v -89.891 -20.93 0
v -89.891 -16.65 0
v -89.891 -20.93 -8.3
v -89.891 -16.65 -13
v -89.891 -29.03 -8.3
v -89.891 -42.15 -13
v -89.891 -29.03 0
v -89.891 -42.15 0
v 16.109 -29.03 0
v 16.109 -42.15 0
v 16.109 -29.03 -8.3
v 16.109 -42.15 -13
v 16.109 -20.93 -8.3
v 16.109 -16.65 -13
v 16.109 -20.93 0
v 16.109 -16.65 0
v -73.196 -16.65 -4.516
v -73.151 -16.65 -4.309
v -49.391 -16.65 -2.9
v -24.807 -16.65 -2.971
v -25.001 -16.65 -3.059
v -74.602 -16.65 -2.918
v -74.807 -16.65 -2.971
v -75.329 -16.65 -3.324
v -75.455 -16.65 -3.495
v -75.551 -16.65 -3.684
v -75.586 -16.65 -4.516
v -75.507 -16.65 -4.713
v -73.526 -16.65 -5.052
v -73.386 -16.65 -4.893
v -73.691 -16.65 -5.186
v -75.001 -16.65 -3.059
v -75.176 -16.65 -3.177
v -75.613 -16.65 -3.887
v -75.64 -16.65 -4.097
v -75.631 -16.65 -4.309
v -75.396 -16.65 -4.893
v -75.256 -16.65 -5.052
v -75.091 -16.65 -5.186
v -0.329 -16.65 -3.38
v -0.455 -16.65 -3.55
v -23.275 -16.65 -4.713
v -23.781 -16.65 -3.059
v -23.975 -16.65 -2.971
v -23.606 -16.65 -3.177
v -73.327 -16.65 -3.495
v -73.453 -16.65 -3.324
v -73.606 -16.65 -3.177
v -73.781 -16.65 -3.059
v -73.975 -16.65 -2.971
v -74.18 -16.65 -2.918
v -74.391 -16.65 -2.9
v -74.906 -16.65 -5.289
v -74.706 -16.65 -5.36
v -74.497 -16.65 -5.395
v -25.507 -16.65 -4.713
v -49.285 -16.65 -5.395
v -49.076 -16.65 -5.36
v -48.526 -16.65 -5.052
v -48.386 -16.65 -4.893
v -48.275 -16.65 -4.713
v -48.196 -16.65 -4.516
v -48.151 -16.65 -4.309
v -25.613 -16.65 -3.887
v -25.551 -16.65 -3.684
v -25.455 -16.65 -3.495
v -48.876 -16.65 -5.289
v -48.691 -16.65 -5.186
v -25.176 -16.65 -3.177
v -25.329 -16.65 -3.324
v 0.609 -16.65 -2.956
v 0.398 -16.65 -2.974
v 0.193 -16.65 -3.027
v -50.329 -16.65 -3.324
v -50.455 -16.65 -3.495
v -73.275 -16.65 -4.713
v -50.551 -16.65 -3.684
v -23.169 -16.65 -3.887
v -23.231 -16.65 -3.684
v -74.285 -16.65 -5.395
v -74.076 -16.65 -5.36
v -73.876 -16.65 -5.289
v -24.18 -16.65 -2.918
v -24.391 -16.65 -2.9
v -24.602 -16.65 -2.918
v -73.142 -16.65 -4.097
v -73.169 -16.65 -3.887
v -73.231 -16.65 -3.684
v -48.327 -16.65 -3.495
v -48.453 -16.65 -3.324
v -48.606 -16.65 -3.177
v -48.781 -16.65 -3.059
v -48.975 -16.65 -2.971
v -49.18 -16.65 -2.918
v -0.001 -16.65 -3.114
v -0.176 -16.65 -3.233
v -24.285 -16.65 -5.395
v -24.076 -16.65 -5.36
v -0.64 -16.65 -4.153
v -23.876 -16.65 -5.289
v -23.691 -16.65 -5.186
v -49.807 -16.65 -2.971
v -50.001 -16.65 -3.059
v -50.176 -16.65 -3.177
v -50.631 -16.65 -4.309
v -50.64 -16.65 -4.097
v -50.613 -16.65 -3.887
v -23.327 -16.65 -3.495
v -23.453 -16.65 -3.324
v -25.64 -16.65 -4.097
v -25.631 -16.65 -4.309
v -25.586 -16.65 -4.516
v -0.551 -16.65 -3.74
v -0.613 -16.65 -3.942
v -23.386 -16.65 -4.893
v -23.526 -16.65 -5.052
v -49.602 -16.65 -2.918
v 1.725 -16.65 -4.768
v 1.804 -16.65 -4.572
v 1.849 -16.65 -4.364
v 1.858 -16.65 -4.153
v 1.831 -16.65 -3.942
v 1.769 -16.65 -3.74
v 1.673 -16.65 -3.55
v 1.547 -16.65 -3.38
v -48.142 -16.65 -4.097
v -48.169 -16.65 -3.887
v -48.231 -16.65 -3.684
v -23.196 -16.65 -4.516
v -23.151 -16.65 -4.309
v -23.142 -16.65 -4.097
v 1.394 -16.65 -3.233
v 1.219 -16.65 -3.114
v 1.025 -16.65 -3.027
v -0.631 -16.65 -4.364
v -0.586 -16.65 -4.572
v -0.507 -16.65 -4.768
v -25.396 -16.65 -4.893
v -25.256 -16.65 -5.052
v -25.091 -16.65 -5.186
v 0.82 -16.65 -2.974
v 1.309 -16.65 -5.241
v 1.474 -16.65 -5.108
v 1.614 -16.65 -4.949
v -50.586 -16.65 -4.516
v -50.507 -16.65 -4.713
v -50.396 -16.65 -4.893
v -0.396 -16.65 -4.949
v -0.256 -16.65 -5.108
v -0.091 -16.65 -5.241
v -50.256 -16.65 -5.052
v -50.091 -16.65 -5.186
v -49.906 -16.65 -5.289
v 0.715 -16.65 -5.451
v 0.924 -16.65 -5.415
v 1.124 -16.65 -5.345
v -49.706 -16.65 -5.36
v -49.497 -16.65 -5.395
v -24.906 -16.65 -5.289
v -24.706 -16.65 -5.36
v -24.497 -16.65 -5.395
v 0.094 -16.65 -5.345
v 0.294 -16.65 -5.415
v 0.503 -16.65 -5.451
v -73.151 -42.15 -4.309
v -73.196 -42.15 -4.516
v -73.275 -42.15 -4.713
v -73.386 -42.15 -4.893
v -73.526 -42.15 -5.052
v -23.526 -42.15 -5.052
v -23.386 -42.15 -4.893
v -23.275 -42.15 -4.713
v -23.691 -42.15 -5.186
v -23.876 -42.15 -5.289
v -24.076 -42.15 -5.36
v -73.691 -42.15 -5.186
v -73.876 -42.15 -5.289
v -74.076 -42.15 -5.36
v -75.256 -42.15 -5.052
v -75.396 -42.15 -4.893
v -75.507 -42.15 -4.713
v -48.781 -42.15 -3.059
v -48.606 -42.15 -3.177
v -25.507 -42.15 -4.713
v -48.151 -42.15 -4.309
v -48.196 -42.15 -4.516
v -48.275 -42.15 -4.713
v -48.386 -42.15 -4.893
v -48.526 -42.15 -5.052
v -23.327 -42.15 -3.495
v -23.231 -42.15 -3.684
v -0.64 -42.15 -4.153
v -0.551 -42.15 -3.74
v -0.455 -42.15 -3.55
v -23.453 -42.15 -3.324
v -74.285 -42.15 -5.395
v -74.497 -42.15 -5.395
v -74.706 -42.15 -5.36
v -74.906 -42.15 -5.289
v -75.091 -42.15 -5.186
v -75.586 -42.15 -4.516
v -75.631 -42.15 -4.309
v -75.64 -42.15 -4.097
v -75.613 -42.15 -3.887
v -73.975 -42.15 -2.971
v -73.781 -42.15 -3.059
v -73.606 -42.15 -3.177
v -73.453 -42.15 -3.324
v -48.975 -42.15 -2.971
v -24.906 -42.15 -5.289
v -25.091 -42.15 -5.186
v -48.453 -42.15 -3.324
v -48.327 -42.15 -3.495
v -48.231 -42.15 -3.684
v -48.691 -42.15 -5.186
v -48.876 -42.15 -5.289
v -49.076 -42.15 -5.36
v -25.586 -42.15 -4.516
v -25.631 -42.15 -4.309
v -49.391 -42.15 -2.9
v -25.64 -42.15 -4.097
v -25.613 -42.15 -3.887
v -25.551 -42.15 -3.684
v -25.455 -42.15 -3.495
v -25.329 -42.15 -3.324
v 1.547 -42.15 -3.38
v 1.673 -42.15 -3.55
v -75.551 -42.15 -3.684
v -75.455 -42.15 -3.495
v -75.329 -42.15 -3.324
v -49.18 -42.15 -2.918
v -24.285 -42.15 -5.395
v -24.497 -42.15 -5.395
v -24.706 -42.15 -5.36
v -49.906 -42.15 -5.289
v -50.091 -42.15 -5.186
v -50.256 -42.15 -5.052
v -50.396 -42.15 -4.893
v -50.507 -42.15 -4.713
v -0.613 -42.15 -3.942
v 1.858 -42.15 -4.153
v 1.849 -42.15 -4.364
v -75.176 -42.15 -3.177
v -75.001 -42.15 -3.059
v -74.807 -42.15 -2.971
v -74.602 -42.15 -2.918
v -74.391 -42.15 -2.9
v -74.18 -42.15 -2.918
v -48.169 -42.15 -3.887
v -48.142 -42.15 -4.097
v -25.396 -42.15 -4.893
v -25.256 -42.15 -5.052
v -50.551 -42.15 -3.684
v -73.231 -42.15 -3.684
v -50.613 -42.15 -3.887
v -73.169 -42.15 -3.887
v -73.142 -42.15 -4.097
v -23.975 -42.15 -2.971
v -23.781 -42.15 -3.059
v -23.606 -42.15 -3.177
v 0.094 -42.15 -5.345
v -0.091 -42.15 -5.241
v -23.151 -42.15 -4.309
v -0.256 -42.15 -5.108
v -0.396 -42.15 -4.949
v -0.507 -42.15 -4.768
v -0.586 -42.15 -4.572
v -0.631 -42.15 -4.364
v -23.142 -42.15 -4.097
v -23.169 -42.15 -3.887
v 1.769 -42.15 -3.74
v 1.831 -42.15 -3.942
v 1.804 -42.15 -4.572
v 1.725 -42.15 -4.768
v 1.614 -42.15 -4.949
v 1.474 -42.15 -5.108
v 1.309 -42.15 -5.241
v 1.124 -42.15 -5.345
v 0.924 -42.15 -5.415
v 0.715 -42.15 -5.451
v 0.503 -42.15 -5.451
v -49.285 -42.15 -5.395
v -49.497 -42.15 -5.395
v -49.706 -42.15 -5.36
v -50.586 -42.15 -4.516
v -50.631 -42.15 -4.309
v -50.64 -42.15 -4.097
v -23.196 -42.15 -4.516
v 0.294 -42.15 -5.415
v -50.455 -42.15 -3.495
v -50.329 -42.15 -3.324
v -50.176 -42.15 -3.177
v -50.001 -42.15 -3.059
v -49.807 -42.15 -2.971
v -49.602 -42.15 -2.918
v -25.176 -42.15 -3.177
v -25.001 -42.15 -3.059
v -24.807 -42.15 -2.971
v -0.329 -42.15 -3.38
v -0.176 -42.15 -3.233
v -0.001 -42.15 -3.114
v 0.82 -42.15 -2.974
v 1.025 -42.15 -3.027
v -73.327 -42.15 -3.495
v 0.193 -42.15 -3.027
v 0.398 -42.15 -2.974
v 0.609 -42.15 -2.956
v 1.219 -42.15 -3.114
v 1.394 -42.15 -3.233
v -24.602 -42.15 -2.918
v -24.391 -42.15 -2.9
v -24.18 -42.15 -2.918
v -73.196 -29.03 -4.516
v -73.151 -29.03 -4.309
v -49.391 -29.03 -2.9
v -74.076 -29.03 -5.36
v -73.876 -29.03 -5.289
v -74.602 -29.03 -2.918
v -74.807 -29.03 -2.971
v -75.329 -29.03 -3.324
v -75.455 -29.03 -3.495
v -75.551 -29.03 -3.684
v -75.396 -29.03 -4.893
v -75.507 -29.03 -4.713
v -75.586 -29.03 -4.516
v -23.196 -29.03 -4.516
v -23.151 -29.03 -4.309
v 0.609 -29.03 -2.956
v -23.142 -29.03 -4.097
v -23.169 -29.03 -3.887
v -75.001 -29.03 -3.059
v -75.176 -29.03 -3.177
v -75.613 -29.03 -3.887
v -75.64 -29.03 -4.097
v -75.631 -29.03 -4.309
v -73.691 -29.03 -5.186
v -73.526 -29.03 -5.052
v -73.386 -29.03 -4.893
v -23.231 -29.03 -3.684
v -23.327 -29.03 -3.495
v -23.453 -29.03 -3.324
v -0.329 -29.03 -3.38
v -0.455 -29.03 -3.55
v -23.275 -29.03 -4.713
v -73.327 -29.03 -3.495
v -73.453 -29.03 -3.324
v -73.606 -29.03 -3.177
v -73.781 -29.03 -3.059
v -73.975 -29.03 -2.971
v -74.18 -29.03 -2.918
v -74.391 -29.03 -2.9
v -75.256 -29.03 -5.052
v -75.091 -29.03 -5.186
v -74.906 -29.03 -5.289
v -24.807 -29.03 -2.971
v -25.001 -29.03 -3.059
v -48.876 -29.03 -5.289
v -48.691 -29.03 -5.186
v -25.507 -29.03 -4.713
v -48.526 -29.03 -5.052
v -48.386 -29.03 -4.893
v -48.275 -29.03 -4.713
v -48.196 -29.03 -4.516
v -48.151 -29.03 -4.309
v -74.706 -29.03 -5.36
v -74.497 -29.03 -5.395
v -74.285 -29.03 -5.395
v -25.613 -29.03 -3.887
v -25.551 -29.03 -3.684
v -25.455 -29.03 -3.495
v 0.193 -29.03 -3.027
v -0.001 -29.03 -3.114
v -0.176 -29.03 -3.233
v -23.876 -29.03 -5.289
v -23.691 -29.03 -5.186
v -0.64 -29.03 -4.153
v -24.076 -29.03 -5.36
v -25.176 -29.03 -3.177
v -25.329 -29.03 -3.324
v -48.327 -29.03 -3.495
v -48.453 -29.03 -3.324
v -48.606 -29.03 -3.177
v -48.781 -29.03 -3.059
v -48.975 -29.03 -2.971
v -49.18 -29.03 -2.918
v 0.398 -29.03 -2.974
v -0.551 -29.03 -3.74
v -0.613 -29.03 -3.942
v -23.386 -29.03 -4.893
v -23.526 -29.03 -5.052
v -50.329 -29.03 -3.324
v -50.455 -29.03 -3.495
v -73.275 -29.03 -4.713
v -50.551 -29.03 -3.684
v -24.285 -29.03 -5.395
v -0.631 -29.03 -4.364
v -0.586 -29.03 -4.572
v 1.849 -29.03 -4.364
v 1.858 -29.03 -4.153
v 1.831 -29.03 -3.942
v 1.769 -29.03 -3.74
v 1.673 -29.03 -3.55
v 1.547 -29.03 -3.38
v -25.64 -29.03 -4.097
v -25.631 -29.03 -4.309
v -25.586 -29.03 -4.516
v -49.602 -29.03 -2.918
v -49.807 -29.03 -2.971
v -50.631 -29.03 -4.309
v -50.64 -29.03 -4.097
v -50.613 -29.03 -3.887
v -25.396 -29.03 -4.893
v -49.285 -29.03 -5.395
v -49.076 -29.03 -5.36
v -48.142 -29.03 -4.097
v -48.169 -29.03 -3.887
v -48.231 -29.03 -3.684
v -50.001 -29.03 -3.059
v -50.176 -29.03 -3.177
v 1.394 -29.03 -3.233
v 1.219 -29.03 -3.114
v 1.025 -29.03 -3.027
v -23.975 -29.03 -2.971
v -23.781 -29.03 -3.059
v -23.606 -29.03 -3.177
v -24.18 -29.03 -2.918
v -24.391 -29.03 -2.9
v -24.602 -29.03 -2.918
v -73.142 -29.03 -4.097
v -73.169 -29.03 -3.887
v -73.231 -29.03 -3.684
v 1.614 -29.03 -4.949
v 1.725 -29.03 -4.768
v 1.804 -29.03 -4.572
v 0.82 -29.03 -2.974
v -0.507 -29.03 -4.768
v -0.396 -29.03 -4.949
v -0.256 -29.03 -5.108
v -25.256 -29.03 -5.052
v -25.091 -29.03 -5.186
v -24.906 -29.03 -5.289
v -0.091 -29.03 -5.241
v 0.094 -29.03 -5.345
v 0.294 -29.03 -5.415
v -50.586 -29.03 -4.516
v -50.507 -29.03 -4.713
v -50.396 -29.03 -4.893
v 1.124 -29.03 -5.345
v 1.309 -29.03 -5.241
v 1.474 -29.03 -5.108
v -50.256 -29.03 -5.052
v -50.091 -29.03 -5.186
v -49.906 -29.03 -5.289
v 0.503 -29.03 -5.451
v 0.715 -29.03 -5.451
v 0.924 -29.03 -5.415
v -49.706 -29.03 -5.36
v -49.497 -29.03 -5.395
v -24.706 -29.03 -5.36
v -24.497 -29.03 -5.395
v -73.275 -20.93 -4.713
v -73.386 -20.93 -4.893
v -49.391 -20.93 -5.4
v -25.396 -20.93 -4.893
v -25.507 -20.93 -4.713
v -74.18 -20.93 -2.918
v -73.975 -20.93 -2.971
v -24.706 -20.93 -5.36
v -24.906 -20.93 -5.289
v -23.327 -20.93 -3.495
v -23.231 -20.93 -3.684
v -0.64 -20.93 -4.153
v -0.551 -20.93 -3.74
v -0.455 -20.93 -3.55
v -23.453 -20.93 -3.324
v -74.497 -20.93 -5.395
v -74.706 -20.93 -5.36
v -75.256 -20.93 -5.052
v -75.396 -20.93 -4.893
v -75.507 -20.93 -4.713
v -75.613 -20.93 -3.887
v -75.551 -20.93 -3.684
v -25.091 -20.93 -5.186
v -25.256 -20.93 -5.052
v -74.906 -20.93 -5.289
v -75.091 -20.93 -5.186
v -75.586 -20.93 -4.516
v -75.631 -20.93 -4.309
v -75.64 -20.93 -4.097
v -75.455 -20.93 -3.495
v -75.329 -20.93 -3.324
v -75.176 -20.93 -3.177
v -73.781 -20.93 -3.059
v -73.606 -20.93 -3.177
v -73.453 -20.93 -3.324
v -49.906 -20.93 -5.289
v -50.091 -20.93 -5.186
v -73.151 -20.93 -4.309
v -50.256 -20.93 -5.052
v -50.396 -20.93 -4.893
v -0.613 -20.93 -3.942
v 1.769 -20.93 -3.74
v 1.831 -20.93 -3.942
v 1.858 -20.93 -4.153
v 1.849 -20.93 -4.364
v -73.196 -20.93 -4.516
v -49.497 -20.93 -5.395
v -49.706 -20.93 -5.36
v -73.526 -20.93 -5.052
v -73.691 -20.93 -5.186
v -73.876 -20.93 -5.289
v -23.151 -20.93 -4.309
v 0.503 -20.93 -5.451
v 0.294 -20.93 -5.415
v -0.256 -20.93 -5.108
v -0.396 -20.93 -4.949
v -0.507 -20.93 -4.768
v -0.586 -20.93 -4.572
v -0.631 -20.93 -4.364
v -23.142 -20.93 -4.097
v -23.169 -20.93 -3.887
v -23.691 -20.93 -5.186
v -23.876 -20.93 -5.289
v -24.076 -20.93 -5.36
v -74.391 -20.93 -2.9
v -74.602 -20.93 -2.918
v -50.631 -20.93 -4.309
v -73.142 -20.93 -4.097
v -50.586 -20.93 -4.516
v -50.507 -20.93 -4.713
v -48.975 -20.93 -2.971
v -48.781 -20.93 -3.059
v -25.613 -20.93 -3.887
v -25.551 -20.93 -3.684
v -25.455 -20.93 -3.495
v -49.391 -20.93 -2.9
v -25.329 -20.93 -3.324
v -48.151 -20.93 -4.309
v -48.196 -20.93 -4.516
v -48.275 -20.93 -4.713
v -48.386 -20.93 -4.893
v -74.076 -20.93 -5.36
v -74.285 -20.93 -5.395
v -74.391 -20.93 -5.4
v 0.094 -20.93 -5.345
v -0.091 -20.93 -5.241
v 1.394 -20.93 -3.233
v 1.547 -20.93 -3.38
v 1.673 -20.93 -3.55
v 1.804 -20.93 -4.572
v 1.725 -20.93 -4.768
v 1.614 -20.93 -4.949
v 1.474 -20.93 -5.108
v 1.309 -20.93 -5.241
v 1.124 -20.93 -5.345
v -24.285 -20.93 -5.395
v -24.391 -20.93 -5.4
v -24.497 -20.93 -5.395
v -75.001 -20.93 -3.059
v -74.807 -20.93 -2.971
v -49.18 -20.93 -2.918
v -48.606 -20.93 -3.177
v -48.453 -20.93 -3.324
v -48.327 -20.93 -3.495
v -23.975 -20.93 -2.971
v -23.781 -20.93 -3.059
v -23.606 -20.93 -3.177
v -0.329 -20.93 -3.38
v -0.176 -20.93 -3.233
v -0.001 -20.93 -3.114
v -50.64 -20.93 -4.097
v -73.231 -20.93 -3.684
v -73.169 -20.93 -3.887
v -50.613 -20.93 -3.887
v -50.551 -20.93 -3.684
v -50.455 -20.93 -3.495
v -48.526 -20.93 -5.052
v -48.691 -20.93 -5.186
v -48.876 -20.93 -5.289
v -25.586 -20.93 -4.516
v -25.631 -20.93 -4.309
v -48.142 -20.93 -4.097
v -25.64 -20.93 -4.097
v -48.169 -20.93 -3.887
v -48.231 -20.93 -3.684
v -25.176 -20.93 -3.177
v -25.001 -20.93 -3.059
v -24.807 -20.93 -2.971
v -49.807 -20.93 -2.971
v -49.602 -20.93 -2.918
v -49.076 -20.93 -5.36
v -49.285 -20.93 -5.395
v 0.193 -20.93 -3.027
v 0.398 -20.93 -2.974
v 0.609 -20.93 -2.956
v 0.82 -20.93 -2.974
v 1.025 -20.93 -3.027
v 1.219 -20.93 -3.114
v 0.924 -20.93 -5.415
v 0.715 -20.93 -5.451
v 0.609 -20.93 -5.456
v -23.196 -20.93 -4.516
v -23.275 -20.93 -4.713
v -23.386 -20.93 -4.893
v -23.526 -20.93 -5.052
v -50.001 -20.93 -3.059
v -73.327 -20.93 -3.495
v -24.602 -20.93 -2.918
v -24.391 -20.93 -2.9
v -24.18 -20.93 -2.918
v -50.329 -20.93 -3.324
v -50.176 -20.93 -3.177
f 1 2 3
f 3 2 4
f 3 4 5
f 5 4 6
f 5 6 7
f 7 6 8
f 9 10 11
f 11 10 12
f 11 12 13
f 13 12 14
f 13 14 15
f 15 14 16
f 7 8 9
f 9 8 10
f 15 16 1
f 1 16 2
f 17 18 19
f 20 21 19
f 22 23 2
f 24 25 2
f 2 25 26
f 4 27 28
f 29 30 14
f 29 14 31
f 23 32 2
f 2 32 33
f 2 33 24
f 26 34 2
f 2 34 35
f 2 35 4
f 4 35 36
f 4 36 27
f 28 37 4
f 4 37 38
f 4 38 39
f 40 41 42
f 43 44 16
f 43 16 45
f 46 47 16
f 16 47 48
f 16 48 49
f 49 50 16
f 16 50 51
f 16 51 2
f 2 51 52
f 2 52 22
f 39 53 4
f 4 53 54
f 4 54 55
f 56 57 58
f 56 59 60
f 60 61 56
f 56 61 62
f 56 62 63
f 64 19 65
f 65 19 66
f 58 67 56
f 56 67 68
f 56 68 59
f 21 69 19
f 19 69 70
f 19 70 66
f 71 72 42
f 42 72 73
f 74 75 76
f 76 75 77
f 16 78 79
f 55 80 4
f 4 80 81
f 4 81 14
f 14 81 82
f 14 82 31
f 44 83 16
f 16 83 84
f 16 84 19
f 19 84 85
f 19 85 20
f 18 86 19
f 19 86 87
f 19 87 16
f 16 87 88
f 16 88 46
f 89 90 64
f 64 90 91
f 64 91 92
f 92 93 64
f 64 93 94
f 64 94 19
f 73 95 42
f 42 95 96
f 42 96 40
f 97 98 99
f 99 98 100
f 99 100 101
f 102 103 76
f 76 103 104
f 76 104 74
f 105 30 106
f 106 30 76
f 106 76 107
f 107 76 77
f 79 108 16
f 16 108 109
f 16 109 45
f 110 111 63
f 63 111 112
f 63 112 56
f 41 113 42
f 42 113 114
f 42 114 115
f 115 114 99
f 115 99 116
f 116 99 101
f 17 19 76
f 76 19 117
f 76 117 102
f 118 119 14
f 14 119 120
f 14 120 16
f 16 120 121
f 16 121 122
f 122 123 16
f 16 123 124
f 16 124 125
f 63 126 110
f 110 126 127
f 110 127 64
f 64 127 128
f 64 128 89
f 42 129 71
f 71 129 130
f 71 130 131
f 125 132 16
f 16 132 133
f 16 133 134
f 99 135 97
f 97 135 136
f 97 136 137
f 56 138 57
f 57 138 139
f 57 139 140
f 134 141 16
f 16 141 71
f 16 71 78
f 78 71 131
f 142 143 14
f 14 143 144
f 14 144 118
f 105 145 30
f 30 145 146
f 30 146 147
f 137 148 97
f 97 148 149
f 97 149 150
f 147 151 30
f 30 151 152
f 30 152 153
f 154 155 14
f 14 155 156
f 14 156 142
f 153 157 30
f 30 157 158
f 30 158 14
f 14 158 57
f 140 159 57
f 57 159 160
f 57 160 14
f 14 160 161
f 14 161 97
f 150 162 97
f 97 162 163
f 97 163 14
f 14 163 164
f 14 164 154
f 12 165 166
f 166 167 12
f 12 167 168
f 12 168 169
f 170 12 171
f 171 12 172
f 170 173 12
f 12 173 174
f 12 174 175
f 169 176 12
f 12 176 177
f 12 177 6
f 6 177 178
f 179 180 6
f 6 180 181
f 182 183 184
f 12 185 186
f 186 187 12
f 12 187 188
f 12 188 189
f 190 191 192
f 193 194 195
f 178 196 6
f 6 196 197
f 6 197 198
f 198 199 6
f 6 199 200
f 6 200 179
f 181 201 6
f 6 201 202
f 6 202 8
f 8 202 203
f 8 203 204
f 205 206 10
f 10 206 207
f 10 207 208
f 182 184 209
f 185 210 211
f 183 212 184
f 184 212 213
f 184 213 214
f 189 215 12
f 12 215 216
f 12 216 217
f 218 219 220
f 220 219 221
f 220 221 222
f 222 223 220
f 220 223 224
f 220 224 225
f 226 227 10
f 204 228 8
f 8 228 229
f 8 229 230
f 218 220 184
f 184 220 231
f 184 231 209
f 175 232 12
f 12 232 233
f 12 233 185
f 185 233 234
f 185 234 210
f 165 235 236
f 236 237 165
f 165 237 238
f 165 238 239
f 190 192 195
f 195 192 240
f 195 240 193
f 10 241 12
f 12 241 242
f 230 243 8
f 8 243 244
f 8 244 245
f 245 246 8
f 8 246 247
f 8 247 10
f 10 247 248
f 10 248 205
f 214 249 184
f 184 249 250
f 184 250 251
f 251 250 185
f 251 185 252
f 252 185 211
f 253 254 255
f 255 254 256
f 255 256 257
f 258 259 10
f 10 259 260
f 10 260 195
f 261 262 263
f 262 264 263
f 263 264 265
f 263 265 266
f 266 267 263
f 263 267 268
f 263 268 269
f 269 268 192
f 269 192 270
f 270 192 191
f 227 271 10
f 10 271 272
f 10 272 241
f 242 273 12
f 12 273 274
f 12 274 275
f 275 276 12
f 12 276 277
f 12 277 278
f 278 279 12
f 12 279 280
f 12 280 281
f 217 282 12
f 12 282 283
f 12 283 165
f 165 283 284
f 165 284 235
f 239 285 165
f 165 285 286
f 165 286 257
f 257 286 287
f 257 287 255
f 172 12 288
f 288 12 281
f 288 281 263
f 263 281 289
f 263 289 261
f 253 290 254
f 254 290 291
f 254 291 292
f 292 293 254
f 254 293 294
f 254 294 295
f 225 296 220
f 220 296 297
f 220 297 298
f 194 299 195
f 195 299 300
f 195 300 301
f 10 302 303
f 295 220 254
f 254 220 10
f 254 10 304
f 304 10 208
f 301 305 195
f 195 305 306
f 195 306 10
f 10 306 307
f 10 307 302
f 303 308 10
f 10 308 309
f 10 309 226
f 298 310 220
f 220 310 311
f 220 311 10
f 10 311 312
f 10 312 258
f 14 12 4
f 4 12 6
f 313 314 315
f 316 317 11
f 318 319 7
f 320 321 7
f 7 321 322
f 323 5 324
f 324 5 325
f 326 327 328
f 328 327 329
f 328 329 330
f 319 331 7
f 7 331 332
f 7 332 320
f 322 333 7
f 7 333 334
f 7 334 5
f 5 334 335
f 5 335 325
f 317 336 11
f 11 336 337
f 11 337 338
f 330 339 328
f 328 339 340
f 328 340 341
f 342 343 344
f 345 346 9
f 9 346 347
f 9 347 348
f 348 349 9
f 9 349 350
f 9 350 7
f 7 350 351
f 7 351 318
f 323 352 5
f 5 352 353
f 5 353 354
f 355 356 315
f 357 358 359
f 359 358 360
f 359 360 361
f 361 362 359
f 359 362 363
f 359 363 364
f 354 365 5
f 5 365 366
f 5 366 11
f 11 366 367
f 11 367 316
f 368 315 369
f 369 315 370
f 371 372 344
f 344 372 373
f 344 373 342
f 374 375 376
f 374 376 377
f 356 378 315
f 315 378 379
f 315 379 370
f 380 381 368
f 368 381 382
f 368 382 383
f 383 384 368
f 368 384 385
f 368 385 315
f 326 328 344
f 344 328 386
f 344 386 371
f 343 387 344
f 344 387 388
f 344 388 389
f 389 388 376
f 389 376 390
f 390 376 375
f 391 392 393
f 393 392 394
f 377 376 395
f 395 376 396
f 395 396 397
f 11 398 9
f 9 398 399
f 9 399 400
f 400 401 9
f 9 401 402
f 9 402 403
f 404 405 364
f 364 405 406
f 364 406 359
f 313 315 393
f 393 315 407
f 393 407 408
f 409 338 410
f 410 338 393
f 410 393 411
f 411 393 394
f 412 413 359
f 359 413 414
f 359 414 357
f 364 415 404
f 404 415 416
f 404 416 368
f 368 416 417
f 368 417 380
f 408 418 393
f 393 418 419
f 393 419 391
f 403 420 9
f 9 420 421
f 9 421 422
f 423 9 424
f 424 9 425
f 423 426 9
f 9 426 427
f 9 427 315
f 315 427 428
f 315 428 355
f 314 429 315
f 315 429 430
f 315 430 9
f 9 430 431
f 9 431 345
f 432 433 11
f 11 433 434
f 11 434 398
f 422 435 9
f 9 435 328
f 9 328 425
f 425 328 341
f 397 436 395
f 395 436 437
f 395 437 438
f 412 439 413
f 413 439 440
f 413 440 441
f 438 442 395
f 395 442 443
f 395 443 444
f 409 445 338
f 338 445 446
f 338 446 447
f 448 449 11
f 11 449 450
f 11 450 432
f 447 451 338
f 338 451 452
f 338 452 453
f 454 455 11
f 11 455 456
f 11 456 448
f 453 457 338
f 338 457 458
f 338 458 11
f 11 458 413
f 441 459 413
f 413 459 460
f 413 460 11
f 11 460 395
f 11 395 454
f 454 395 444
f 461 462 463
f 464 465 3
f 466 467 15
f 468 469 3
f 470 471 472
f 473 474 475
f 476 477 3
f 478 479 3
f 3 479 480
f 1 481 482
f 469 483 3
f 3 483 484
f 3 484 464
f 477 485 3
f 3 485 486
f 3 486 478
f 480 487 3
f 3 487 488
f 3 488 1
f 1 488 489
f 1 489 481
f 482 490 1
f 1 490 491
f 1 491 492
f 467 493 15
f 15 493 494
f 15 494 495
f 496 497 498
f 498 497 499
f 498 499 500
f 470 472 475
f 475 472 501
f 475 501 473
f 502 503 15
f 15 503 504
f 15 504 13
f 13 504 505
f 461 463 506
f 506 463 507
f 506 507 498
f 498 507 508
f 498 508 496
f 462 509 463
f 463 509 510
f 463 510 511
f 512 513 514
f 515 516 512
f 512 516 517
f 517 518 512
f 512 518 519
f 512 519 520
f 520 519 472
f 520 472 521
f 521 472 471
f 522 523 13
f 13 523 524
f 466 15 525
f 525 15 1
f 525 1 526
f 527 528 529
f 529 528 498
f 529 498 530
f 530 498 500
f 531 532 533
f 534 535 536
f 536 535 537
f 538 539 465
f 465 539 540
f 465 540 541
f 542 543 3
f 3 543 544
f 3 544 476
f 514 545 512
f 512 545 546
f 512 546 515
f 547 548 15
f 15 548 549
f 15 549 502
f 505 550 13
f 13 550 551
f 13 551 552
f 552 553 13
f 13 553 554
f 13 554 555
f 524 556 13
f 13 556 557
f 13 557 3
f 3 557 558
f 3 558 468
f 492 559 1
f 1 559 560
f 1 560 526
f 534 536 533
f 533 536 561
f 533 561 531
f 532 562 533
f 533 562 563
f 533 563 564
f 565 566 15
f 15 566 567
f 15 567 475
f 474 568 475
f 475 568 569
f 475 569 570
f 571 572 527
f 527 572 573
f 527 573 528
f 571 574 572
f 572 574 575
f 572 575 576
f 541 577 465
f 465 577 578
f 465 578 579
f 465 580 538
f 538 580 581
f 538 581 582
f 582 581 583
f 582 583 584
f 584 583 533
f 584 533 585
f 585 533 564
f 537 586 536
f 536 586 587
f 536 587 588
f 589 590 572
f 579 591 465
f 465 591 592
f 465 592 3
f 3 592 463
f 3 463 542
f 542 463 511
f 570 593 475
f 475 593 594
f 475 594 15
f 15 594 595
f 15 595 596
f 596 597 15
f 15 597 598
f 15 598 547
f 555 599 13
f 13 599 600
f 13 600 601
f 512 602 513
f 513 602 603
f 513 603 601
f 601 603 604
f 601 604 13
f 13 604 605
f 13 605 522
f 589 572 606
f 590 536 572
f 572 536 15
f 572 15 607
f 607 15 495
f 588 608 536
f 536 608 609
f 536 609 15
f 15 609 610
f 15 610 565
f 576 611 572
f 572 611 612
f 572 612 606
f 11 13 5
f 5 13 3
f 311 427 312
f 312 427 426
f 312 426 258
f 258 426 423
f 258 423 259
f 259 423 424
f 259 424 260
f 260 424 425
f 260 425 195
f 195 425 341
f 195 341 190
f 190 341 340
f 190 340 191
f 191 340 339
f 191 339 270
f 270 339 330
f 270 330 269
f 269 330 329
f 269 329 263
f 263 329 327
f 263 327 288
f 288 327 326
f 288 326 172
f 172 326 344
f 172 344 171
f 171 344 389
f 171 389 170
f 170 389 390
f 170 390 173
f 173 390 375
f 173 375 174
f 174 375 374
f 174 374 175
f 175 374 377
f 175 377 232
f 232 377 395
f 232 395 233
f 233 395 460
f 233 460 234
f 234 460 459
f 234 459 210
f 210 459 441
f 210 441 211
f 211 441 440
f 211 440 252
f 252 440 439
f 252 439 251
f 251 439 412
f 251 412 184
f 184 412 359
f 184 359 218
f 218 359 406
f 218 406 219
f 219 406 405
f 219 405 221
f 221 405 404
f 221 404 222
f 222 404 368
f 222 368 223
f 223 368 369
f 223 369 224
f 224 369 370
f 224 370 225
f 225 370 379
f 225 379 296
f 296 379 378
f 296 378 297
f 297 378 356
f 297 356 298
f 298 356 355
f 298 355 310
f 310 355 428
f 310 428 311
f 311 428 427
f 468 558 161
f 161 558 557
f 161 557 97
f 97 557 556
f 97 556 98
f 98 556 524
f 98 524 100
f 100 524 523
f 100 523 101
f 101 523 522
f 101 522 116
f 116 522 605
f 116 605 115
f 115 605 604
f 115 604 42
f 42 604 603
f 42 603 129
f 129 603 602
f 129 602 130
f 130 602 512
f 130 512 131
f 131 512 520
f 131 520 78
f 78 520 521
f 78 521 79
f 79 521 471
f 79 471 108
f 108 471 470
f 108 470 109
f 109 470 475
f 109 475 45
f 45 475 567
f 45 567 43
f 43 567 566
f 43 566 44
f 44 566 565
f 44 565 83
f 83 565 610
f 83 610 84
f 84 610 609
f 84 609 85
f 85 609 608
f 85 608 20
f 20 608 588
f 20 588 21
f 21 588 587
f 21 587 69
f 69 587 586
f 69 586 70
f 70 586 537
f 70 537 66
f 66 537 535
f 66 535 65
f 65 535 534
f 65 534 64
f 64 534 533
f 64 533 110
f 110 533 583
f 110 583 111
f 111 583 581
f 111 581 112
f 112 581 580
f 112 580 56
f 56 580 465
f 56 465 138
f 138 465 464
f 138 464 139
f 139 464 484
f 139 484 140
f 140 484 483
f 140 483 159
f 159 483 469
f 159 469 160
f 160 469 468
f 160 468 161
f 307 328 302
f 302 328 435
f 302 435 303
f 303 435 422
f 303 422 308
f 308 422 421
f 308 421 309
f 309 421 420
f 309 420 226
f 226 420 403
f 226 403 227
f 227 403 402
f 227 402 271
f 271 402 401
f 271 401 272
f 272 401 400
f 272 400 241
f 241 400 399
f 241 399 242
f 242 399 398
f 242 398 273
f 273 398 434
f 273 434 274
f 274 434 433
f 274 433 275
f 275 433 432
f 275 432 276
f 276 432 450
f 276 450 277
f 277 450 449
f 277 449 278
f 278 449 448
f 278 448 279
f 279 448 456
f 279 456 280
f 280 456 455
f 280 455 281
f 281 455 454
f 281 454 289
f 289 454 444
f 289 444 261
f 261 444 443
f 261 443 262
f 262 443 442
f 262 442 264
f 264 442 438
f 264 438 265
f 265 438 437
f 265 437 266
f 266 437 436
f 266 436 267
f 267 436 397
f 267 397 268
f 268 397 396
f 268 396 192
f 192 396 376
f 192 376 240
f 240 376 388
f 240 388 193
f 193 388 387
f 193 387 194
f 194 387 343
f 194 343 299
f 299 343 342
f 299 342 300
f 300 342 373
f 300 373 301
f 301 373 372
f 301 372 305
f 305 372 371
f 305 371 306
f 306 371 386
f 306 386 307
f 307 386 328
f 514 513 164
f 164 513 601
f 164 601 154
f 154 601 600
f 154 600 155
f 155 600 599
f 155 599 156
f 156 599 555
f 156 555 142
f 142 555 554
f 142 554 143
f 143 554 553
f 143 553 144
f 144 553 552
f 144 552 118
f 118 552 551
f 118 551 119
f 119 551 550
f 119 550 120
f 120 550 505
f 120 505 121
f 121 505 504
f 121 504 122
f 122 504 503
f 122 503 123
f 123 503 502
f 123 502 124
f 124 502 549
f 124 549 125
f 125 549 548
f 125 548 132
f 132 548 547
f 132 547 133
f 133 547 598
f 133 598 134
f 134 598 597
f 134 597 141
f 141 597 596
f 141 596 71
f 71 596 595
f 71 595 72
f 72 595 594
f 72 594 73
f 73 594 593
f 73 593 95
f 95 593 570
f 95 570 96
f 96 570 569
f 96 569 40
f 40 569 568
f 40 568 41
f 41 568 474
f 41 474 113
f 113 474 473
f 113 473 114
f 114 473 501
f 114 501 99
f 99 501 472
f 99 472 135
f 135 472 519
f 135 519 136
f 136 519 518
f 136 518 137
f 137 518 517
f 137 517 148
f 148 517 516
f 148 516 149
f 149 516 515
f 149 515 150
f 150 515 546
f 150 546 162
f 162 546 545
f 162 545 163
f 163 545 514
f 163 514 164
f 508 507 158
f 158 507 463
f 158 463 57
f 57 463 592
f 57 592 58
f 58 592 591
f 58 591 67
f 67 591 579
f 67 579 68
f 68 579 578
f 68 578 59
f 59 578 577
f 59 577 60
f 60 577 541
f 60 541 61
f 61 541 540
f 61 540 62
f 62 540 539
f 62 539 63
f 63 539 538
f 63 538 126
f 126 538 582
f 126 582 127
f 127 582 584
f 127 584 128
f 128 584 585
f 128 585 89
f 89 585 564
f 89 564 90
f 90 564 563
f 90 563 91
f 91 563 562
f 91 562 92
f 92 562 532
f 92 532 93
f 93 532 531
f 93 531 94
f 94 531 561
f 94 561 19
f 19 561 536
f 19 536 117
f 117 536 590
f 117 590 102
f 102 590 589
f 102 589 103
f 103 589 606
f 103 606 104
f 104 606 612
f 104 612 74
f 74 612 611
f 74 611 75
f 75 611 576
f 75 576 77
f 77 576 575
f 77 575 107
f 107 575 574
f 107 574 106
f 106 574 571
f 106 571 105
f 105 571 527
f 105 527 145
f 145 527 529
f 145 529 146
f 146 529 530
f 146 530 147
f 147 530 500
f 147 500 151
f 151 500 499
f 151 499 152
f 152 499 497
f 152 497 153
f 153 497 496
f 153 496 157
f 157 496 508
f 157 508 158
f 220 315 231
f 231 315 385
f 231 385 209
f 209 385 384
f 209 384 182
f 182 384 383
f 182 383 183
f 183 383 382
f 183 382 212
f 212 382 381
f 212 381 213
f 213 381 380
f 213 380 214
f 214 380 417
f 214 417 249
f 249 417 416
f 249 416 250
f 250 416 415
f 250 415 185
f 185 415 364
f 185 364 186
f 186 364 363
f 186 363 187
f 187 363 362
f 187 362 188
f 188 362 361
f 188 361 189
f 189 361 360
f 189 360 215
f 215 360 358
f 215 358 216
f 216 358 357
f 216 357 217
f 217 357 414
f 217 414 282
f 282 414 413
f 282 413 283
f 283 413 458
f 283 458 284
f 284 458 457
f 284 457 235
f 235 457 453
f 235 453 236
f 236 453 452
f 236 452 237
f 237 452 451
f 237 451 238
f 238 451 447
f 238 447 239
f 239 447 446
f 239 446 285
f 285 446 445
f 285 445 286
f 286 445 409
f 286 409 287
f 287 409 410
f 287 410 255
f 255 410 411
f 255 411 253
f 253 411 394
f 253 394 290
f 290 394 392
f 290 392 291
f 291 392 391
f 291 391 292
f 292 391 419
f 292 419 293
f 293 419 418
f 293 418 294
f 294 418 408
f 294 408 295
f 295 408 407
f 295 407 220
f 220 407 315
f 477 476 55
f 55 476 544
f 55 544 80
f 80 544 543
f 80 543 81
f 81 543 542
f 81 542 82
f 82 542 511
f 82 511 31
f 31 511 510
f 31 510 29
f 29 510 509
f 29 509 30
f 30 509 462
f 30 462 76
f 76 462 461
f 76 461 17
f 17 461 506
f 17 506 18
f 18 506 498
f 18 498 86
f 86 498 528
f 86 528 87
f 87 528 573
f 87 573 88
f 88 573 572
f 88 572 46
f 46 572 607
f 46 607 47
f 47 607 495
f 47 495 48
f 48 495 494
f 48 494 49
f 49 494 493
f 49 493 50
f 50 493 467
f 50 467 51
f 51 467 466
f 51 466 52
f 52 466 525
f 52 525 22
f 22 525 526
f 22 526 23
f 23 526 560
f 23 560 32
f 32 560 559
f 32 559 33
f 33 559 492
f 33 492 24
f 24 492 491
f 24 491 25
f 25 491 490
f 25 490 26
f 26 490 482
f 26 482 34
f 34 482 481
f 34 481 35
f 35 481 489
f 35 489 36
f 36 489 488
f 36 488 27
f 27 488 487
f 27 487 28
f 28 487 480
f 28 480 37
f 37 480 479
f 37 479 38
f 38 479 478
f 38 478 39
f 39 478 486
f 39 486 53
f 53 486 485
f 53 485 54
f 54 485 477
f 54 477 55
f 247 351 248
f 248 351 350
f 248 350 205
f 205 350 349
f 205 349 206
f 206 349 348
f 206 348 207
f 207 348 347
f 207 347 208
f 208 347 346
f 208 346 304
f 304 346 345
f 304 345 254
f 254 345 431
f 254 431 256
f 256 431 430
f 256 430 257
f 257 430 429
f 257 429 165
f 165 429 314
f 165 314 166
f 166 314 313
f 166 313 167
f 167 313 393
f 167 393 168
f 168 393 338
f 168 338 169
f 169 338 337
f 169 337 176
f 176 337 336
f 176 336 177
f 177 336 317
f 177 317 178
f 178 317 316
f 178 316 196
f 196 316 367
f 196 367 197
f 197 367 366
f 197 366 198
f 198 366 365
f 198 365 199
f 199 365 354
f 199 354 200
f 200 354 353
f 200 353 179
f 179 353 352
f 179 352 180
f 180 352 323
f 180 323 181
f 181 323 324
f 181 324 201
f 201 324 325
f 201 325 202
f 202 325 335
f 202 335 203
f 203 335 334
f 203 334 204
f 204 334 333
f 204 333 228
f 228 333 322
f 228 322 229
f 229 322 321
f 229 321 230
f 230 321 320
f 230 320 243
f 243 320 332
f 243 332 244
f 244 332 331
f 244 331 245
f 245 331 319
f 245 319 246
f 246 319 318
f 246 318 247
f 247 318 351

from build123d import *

# Parameters (mm, degrees)
SKETCH4_W               = 106
SKETCH4_H               = 25.5
BOSS_EXTRUDE2_DEPTH     = 13
CUT_EXTRUDE3_DEPTH      = 101.130030155
CUT_EXTRUDE3_DEPTH_BACK = 8.3
SKETCH25_W              = 106
SKETCH25_H              = 8.1
M3X0_5_TAPPED_HOLE1_D   = 2.5


with BuildPart() as part:
    # Sketch4 → Boss-Extrude2 (new body)
    with BuildSketch(Plane.XY):
        with Locations((-36.891047602, -29.4)):
            Rectangle(SKETCH4_W, SKETCH4_H)
    extrude(amount=-BOSS_EXTRUDE2_DEPTH)

    # Sketch25 → Cut-Extrude3 (cut, two sides: drawn at the far end of the back side and taken through both)
    with BuildSketch(Plane.XY.offset(-CUT_EXTRUDE3_DEPTH_BACK)):
        with Locations((-36.891047602, -24.98)):
            Rectangle(SKETCH25_W, SKETCH25_H)
    extrude(amount=CUT_EXTRUDE3_DEPTH + CUT_EXTRUDE3_DEPTH_BACK, mode=Mode.SUBTRACT)

    # M3x0.5 Tapped Hole1 (through all)
    with Locations(Plane(origin=(-74.390985602, -16.65, -4.15), x_dir=(0, 0, 1), z_dir=(0, 1, 0))):
        with Locations((0, 0), (0, 25), (-0.055677319, 74.999938), (0, 50)):
            Hole(M3X0_5_TAPPED_HOLE1_D / 2)


solid = part.part
